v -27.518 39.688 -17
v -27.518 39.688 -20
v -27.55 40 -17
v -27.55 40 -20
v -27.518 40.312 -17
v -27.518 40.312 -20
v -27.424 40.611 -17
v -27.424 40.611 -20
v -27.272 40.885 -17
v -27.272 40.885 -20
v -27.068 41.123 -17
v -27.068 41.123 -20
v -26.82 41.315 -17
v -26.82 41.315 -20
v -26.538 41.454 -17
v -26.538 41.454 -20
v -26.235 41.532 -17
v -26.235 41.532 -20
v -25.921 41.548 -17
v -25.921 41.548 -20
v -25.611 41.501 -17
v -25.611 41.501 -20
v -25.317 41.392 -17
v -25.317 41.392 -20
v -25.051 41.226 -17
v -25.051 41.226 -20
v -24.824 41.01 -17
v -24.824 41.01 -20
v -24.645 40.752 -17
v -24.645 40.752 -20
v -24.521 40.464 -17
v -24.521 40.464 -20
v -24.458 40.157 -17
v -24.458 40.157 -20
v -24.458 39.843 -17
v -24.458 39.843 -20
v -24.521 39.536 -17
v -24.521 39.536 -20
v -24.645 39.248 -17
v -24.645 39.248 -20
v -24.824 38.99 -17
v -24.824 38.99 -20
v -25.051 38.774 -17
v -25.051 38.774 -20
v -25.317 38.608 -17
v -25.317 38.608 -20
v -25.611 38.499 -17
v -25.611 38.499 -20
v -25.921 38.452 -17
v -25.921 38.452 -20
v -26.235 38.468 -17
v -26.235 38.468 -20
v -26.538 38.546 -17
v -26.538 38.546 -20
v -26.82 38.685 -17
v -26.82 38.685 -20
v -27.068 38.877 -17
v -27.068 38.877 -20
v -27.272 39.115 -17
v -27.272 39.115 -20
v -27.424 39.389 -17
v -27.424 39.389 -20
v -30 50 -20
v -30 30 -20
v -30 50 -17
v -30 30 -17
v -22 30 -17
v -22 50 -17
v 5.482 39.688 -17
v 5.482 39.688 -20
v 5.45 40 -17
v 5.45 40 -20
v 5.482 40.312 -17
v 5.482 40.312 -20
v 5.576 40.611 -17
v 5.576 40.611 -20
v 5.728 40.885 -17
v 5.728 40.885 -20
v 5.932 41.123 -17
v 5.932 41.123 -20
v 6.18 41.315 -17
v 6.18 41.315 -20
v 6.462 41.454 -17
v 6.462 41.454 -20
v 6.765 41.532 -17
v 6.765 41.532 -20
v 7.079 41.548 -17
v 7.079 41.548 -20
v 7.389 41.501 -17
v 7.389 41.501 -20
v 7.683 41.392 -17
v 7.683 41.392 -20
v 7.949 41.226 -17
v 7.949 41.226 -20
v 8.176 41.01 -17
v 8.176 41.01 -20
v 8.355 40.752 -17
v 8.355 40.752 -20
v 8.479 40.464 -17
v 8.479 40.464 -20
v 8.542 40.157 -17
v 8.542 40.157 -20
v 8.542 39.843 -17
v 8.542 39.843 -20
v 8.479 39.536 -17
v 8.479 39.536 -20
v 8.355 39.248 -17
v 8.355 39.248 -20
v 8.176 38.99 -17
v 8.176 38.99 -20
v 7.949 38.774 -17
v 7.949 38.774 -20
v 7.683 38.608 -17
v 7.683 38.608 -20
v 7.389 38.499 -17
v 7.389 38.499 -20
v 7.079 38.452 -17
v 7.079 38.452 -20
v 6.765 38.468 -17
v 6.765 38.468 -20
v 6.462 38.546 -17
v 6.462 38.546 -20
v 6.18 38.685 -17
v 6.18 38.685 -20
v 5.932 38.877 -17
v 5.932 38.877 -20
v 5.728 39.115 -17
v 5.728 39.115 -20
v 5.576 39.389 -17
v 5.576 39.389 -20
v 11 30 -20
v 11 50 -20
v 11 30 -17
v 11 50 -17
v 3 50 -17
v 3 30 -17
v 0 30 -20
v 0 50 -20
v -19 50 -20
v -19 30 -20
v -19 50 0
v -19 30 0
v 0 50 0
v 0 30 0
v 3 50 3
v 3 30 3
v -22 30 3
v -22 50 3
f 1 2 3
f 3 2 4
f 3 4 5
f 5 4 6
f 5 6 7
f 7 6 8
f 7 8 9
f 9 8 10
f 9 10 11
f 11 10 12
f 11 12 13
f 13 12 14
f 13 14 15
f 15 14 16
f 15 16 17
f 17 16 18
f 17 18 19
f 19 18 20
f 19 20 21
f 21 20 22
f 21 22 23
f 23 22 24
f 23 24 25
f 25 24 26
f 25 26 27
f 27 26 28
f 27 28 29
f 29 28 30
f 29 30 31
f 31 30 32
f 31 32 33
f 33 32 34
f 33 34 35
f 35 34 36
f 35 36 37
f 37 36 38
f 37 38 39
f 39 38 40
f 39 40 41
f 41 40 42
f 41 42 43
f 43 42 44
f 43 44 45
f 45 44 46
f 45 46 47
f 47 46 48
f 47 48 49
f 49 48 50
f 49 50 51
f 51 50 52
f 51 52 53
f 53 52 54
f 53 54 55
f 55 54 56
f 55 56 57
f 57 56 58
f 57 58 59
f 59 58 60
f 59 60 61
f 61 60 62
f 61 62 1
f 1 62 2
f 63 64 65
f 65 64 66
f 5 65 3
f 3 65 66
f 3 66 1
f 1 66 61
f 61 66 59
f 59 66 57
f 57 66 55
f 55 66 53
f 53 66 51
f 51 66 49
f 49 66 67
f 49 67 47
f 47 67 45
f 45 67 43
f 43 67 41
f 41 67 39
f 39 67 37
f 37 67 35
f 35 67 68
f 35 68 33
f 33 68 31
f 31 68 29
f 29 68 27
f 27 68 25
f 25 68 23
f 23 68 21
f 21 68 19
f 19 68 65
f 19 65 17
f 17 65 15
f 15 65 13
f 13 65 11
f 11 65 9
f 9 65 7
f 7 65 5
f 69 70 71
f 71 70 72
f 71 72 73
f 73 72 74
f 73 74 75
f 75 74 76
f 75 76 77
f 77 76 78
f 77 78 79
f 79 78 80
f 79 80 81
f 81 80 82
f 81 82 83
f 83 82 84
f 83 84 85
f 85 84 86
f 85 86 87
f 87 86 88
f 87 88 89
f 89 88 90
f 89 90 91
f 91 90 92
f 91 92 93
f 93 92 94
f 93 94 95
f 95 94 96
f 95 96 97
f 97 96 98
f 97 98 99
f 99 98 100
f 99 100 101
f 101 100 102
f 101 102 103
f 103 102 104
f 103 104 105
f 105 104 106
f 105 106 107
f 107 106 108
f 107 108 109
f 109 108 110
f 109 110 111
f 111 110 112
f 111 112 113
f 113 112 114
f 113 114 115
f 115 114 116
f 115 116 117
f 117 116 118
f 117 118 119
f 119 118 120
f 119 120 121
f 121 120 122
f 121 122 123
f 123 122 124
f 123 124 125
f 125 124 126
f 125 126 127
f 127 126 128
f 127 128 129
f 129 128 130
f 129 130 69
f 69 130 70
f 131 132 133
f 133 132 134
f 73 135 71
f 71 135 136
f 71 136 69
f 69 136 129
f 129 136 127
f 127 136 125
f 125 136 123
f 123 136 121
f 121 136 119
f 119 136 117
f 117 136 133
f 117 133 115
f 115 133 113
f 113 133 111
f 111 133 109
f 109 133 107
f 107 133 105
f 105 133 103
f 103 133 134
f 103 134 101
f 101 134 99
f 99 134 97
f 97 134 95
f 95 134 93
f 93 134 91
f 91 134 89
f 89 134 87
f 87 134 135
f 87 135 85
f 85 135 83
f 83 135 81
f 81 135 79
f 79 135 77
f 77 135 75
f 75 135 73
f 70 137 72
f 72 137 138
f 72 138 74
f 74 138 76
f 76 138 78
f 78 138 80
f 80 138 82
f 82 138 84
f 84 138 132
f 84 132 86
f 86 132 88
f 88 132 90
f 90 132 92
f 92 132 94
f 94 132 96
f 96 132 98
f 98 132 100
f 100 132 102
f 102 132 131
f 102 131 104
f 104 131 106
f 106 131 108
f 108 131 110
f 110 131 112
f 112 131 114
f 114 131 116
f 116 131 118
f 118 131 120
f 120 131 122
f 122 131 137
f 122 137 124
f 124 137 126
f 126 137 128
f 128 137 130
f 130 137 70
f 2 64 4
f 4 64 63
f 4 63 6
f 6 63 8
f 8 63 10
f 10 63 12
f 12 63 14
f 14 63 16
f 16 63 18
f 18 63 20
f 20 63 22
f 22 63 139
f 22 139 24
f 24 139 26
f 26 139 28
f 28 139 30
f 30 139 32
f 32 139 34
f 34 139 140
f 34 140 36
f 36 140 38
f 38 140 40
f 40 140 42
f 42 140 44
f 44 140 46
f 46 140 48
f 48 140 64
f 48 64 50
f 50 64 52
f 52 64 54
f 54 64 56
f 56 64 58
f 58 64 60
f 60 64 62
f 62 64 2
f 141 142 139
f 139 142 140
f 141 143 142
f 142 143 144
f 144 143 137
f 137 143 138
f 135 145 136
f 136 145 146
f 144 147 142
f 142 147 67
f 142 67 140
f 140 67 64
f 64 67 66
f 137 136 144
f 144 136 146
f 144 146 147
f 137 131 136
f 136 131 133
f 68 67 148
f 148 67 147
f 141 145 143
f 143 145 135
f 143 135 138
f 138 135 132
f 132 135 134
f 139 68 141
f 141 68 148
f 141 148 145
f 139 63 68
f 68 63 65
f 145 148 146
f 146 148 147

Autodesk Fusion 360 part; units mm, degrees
sketch "Sketch1" plane through (0, 0, 0) normal (1, 0, 0) x (0, 1, 0) in component "Integrated frame"
  circle A0 centre (-46.8244, 18.5) radius 1.5
  circle A1 centre (-9.8244, 18.5) radius 1.5
  circle A2 centre (-46.8244, -18.5) radius 1.5
  circle A3 centre (-9.8244, -18.5) radius 1.5
  line L0 (0, 0) -> (0, 35.4619) construction
  line L1 (60, 100) -> (-60, 100)
  line L2 (-60, 100) -> (-60, -100)
  line L3 (-60, -100) -> (60, -100)
  line L4 (60, -100) -> (60, 100)
  line L5 (60, 100) -> (-60, -100) construction
  line L6 (-60, 100) -> (60, -100) construction
  circle A4 centre (46.8244, 18.5) radius 1.5
  circle A5 centre (46.8244, -18.5) radius 1.5
  circle A6 centre (9.8244, -18.5) radius 1.5
  circle A7 centre (9.8244, 18.5) radius 1.5
  line L7 (-18.5, -45.3481) -> (-21.5, -45.3481)
  line L8 (-21.5, -45.3481) -> (-21.5, -70.3481)
  line L9 (-21.5, -70.3481) -> (-18.5, -70.3481)
  line L10 (-18.5, -70.3481) -> (-18.5, -45.3481)
  line L11 (21.5, -45.3481) -> (21.5, -70.3481)
  line L12 (18.5, -70.3481) -> (18.5, -45.3481)
  line L13 (18.5, -45.3481) -> (21.5, -45.3481)
  line L14 (21.5, -70.3481) -> (18.5, -70.3481)
  circle A8 centre (-43.3091, 82.7998) radius 1.5
  circle A9 centre (-21.3091, 82.7998) radius 1.5
  circle A10 centre (21.3091, 82.7998) radius 1.5
  circle A11 centre (43.3091, 82.7998) radius 1.5
  line L15 (0, 0) -> (33.4715, 0) construction
  circle A12 centre (-43.3091, -82.7998) radius 1.5
  circle A13 centre (-21.3091, -82.7998) radius 1.5
  circle A14 centre (43.3091, -82.7998) radius 1.5
  circle A15 centre (21.3091, -82.7998) radius 1.5
  point P0 (-28.3244, 0)
  dimension "d246" = 3
  dimension "d248" = 18.5
  dimension "d249" = 18.5
  dimension "d252" = 37
  dimension "d253" = -37
  dimension "d261" = 120
  dimension "d262" = 200
  dimension "d264" = 3
  dimension "d265" = 25
  dimension "d266" = 18.5
  dimension "d269" = 3
  dimension "d270" = 3
  dimension "d271" = 22
sketch "Sketch1 (2)" plane through (0, 0, 0) normal (0, 0, 1) x (1, 0, 0) in component "MotorClamp"
  line L0 (0, 50) -> (-19, 50)
  line L1 (-19, 50) -> (-19, 30)
  line L2 (-19, 30) -> (0, 30)
  line L3 (0, 30) -> (0, 50)
  line L4 (-19, 50) -> (-22, 50)
  line L5 (-22, 50) -> (-22, 30)
  line L6 (-22, 30) -> (-19, 30)
  line L7 (-19, 30) -> (-19, 50)
  line L8 (0, 50) -> (3, 50)
  line L9 (3, 50) -> (3, 30)
  line L10 (3, 30) -> (0, 30)
  line L11 (0, 30) -> (0, 50)
  dimension "d272" = 19
  dimension "d273" = 20
  dimension "d274" = 3
  dimension "d275" = 3
extrude "Extrude1" add sketch "Sketch1 (2)" along normal blind 3 in component "MotorClamp"
extrude "Extrude2" add sketch "Sketch1 (2)" against normal blind 17 contours L3 L8 L9 L10 L11 | L1 L4 L5 L6 L7 in component "MotorClamp"
extrude "Extrude3" add 2 faces at (-20, 36.6667, -17) (1, 43.3333, -17) along direction (0, 0, -1) blind 3 in component "MotorClamp"
sketch "Sketch2" plane through (0, 0, -20) normal (0, 0, -1) x (1, 0, 0) in component "MotorClamp"
  line L0 (-19, -50) -> (-19, -30)
  line L1 (-19, -30) -> (-22, -30)
  line L2 (-22, -30) -> (-22, -50)
  line L3 (-22, -50) -> (-19, -50)
  line L4 (-22, -30) -> (-30, -30)
  line L5 (-30, -30) -> (-30, -50)
  line L6 (-30, -50) -> (-22, -50)
  line L7 (-22, -50) -> (-22, -30)
  line L8 (3, -50) -> (11, -50)
  line L9 (11, -50) -> (11, -30)
  line L10 (11, -30) -> (3, -30)
  line L11 (3, -30) -> (3, -50)
  line L12 (-30, -30) -> (-22, -50) construction
  line L13 (-30, -50) -> (-22, -30) construction
  line L14 (3, -30) -> (11, -50) construction
  line L15 (3, -50) -> (11, -30) construction
  circle A0 centre (-26, -40) radius 1.55
  circle A1 centre (7, -40) radius 1.55
  dimension "d282" = 8
  dimension "d283" = 8
  dimension "d284" = 25
  dimension "d285" = 3.1
  dimension "d286" = 3.1
extrude "Extrude4" add sketch "Sketch2" against normal blind 3 contours L2 L4 L5 L6 L7 | L8 L9 L10 L11 in component "MotorClamp"
extrude "Extrude1'" [suppressed] in component "Integrated frame"
sketch "Laser cut sketch" plane through (3, 0, 0) normal (1, 0, 0) x (0, 1, 0) in component "Integrated frame"
  circle A0 centre (-9.8244, -18.5) radius 1.5
  circle A1 centre (-46.8244, -18.5) radius 1.5
  circle A2 centre (-46.8244, 18.5) radius 1.5
  circle A3 centre (-9.8244, 18.5) radius 1.5
  circle A4 centre (46.8244, 18.5) radius 1.5
  circle A5 centre (46.8244, -18.5) radius 1.5
  circle A6 centre (9.8244, -18.5) radius 1.5
  circle A7 centre (9.8244, 18.5) radius 1.5
  line L0 (-18.5, -45.3481) -> (-18.5, -70.3481)
  line L1 (-18.5, -70.3481) -> (-21.5, -70.3481)
  line L2 (-21.5, -70.3481) -> (-21.5, -45.3481)
  line L3 (-21.5, -45.3481) -> (-18.5, -45.3481)
  line L4 (21.5, -45.3481) -> (21.5, -70.3481)
  line L5 (21.5, -70.3481) -> (18.5, -70.3481)
  line L6 (18.5, -70.3481) -> (18.5, -45.3481)
  line L7 (18.5, -45.3481) -> (21.5, -45.3481)
  line L8 (60, -100) -> (60, 100)
  line L9 (60, 100) -> (-60, 100)
  line L10 (-60, 100) -> (-60, -100)
  line L11 (-60, -100) -> (60, -100)
extrude "Extrude2'" [suppressed]
component "Integrated frame" placed x (1, 0, 0) y (0, 1, 0) z (0, 0, 1) at (0, 0, 0)
component "MotorClamp" placed x (1, 0, 0) y (0, 1, 0) z (0, 0, 1) at (0, 0, 0)
equation "partLength = 250 mm"
equation "partWidth = 25 mm"
equation "boltHole = 3 mm"
equation "boltFromEdgesClose = 10 mm"
equation "boltGap = 12 mm"
equation "boltFromEdgesFar = 40 mm"
equation "boltGapFromSide = ( partWidth - boltGap ) / 2"
equation "boltGapDiag = boltGap * sqrt(2)"
equation "d246 = boltHole"
equation "d248 = ( 37 / 2 ) * 1 mm"
equation "d249 = ( 37 / 2 ) * 1 mm"
equation "d266 = ( 37 / 2 ) * 1 mm"
equation "d269 = boltHole"
equation "d270 = boltHole"
equation "d285 = boltHole + 0.1 mm"
equation "d286 = boltHole + 0.1 mm"
